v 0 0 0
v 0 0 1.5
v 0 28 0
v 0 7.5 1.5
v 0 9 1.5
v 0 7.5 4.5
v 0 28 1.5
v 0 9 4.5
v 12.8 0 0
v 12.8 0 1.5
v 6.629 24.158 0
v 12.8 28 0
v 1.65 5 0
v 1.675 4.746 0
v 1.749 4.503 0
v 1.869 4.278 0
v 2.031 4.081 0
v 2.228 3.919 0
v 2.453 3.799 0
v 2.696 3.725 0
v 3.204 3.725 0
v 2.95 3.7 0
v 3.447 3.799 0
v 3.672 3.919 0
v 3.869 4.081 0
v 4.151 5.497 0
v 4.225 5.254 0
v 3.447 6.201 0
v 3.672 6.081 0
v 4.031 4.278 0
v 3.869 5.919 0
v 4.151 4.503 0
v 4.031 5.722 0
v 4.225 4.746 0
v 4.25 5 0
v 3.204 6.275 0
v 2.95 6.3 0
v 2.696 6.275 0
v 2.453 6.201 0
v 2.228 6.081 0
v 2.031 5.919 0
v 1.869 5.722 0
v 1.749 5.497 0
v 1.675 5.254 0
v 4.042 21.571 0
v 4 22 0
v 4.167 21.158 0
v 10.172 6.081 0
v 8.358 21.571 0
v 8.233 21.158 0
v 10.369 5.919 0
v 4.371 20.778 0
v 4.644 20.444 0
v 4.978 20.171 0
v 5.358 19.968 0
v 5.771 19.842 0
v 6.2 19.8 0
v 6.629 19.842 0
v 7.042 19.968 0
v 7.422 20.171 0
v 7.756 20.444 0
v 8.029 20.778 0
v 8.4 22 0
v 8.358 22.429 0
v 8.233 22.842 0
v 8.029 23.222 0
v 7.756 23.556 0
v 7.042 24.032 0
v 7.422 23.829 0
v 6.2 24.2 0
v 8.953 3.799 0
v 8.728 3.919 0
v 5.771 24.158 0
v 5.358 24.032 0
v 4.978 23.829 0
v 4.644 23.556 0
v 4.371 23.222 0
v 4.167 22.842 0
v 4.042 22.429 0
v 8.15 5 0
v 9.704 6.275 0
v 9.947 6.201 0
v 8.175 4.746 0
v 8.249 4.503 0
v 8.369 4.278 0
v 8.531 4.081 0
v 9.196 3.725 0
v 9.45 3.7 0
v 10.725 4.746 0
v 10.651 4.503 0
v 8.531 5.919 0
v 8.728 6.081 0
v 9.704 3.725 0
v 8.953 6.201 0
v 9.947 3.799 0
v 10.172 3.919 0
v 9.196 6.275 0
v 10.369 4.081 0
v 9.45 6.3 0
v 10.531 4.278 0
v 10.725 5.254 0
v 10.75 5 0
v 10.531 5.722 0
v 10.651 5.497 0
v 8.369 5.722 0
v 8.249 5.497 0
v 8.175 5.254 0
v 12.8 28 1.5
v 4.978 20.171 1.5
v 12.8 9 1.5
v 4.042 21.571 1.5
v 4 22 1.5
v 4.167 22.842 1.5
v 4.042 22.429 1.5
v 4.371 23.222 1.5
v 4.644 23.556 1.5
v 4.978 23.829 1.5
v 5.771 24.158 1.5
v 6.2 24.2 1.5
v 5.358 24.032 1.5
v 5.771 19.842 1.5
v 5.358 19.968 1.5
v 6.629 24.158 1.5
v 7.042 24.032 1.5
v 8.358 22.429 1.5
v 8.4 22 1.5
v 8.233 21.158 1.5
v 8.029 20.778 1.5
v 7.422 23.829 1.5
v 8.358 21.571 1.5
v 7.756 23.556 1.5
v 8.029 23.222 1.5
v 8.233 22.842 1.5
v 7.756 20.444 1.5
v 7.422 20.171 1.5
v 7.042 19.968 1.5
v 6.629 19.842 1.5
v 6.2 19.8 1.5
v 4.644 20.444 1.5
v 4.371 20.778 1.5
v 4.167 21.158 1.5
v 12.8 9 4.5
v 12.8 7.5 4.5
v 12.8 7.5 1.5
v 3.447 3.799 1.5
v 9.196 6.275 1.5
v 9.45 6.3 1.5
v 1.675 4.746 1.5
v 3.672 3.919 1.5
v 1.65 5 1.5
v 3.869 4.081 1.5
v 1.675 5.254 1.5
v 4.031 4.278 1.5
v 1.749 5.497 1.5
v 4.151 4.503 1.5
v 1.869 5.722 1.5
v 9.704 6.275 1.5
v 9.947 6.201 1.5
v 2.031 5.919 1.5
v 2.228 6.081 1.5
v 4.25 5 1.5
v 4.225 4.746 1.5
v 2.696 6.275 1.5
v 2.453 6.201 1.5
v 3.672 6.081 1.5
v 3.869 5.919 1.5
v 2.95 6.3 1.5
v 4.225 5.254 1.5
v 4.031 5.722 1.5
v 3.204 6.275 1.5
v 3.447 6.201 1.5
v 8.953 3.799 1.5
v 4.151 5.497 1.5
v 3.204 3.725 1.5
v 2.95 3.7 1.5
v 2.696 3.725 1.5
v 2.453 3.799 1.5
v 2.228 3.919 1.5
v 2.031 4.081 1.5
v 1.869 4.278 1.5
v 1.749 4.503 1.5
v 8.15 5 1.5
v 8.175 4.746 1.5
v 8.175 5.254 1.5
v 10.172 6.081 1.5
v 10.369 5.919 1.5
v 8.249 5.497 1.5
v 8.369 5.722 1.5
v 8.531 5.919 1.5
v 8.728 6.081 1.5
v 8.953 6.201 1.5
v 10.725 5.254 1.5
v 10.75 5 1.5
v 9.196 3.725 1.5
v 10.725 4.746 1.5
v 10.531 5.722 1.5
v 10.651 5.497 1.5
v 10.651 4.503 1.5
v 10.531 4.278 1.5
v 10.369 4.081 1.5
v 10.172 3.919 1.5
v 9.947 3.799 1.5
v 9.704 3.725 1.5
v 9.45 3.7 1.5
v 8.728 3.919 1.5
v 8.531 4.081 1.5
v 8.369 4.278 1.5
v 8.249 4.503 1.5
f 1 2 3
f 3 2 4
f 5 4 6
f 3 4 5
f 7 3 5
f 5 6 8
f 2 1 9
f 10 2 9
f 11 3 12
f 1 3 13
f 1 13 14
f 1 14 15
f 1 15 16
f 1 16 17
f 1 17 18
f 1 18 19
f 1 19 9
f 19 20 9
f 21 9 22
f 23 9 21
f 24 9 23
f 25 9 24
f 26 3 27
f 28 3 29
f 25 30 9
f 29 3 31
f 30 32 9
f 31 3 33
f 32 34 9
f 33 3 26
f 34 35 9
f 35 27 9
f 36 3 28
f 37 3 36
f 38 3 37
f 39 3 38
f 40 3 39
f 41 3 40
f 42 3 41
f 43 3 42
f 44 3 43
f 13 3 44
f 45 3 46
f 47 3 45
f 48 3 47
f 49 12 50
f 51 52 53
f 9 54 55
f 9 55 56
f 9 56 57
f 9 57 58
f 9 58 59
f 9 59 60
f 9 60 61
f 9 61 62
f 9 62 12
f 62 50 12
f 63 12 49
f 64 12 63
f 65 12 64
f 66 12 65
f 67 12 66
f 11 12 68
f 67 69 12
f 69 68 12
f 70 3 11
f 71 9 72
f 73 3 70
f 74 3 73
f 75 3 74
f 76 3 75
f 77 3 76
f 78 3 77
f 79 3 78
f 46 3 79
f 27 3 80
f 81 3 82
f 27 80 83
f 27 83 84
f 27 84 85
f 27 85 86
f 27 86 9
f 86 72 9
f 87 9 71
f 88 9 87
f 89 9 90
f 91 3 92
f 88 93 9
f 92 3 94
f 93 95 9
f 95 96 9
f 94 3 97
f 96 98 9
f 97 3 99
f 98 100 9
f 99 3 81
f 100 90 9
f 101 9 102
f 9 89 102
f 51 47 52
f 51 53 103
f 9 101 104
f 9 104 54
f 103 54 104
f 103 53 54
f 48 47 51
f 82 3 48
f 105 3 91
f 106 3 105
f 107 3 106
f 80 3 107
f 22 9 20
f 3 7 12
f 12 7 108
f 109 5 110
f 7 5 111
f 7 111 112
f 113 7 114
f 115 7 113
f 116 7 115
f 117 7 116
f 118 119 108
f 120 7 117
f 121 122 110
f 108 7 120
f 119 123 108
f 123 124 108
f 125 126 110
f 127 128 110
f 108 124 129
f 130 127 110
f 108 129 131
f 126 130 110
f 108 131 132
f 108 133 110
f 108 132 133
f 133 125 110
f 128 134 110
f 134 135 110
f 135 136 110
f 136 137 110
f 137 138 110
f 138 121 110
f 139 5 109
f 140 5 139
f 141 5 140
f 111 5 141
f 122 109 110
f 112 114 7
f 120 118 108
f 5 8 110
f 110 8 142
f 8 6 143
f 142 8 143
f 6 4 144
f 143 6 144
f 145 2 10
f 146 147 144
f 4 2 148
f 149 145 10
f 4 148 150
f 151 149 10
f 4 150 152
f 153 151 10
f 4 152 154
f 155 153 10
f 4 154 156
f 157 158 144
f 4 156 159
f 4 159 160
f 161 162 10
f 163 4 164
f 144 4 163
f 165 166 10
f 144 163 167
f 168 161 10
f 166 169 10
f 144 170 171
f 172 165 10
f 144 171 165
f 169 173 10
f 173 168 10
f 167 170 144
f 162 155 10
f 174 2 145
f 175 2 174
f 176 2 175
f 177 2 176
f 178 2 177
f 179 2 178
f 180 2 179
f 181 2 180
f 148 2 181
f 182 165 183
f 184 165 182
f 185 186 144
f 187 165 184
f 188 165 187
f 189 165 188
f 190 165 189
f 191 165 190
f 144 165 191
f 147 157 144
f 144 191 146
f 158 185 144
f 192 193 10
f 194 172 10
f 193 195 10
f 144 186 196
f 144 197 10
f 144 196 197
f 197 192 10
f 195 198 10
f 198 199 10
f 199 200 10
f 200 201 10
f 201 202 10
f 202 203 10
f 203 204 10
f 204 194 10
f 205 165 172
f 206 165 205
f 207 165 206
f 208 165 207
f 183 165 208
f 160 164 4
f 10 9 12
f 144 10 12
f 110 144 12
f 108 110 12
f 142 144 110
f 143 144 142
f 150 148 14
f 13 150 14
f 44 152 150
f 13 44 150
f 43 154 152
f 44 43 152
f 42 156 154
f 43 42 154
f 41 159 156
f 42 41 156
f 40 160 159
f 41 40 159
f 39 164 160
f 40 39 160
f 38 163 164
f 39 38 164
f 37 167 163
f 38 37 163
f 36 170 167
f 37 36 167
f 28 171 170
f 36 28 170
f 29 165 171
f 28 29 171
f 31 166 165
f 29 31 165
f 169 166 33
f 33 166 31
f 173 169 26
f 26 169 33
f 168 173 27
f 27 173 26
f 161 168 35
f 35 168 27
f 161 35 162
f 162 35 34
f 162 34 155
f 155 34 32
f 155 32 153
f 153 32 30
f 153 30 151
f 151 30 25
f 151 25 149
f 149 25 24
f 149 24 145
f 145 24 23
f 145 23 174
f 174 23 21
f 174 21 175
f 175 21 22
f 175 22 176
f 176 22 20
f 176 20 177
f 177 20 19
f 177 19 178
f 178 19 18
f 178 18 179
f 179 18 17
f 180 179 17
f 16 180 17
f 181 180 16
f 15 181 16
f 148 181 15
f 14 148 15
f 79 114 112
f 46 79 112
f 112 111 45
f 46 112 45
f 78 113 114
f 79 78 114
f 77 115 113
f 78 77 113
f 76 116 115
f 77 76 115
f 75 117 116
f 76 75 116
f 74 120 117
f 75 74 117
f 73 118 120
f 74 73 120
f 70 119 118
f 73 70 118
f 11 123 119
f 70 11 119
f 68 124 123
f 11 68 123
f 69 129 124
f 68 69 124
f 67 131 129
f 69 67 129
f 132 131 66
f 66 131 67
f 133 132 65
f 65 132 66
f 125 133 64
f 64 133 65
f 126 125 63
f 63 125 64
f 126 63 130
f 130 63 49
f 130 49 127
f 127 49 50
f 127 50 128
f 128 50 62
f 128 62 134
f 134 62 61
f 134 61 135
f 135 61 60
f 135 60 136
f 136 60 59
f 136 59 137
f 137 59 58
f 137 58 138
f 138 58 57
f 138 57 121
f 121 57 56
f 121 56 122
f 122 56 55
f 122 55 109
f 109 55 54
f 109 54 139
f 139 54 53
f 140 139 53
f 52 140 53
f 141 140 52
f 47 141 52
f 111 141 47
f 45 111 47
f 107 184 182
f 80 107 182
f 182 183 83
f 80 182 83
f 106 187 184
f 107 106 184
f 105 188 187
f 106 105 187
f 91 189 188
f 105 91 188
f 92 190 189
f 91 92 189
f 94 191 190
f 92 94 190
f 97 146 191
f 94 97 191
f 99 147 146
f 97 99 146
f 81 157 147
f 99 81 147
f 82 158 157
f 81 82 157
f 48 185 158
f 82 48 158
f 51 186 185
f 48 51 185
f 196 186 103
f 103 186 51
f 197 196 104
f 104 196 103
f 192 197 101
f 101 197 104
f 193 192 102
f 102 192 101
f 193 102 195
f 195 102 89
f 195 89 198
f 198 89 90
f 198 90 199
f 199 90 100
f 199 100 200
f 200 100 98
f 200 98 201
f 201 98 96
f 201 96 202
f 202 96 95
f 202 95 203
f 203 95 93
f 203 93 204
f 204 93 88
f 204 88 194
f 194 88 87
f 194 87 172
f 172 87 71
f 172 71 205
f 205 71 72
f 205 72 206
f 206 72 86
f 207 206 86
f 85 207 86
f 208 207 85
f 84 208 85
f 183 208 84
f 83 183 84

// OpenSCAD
$fn=32;

difference(){
  union() {
    cube([12.8,28,1.5]);
    translate([0,7.5,0.5]) cube([12.8,1.5,4]);
  }

  translate([6.2-3.25,5,-0.5]) cylinder(3,1.3,1.3);
  translate([6.2+3.25,5,-0.5]) cylinder(3,1.3,1.3);
  translate([6.2,22,-0.5]) cylinder(3,2.2,2.2);
}
